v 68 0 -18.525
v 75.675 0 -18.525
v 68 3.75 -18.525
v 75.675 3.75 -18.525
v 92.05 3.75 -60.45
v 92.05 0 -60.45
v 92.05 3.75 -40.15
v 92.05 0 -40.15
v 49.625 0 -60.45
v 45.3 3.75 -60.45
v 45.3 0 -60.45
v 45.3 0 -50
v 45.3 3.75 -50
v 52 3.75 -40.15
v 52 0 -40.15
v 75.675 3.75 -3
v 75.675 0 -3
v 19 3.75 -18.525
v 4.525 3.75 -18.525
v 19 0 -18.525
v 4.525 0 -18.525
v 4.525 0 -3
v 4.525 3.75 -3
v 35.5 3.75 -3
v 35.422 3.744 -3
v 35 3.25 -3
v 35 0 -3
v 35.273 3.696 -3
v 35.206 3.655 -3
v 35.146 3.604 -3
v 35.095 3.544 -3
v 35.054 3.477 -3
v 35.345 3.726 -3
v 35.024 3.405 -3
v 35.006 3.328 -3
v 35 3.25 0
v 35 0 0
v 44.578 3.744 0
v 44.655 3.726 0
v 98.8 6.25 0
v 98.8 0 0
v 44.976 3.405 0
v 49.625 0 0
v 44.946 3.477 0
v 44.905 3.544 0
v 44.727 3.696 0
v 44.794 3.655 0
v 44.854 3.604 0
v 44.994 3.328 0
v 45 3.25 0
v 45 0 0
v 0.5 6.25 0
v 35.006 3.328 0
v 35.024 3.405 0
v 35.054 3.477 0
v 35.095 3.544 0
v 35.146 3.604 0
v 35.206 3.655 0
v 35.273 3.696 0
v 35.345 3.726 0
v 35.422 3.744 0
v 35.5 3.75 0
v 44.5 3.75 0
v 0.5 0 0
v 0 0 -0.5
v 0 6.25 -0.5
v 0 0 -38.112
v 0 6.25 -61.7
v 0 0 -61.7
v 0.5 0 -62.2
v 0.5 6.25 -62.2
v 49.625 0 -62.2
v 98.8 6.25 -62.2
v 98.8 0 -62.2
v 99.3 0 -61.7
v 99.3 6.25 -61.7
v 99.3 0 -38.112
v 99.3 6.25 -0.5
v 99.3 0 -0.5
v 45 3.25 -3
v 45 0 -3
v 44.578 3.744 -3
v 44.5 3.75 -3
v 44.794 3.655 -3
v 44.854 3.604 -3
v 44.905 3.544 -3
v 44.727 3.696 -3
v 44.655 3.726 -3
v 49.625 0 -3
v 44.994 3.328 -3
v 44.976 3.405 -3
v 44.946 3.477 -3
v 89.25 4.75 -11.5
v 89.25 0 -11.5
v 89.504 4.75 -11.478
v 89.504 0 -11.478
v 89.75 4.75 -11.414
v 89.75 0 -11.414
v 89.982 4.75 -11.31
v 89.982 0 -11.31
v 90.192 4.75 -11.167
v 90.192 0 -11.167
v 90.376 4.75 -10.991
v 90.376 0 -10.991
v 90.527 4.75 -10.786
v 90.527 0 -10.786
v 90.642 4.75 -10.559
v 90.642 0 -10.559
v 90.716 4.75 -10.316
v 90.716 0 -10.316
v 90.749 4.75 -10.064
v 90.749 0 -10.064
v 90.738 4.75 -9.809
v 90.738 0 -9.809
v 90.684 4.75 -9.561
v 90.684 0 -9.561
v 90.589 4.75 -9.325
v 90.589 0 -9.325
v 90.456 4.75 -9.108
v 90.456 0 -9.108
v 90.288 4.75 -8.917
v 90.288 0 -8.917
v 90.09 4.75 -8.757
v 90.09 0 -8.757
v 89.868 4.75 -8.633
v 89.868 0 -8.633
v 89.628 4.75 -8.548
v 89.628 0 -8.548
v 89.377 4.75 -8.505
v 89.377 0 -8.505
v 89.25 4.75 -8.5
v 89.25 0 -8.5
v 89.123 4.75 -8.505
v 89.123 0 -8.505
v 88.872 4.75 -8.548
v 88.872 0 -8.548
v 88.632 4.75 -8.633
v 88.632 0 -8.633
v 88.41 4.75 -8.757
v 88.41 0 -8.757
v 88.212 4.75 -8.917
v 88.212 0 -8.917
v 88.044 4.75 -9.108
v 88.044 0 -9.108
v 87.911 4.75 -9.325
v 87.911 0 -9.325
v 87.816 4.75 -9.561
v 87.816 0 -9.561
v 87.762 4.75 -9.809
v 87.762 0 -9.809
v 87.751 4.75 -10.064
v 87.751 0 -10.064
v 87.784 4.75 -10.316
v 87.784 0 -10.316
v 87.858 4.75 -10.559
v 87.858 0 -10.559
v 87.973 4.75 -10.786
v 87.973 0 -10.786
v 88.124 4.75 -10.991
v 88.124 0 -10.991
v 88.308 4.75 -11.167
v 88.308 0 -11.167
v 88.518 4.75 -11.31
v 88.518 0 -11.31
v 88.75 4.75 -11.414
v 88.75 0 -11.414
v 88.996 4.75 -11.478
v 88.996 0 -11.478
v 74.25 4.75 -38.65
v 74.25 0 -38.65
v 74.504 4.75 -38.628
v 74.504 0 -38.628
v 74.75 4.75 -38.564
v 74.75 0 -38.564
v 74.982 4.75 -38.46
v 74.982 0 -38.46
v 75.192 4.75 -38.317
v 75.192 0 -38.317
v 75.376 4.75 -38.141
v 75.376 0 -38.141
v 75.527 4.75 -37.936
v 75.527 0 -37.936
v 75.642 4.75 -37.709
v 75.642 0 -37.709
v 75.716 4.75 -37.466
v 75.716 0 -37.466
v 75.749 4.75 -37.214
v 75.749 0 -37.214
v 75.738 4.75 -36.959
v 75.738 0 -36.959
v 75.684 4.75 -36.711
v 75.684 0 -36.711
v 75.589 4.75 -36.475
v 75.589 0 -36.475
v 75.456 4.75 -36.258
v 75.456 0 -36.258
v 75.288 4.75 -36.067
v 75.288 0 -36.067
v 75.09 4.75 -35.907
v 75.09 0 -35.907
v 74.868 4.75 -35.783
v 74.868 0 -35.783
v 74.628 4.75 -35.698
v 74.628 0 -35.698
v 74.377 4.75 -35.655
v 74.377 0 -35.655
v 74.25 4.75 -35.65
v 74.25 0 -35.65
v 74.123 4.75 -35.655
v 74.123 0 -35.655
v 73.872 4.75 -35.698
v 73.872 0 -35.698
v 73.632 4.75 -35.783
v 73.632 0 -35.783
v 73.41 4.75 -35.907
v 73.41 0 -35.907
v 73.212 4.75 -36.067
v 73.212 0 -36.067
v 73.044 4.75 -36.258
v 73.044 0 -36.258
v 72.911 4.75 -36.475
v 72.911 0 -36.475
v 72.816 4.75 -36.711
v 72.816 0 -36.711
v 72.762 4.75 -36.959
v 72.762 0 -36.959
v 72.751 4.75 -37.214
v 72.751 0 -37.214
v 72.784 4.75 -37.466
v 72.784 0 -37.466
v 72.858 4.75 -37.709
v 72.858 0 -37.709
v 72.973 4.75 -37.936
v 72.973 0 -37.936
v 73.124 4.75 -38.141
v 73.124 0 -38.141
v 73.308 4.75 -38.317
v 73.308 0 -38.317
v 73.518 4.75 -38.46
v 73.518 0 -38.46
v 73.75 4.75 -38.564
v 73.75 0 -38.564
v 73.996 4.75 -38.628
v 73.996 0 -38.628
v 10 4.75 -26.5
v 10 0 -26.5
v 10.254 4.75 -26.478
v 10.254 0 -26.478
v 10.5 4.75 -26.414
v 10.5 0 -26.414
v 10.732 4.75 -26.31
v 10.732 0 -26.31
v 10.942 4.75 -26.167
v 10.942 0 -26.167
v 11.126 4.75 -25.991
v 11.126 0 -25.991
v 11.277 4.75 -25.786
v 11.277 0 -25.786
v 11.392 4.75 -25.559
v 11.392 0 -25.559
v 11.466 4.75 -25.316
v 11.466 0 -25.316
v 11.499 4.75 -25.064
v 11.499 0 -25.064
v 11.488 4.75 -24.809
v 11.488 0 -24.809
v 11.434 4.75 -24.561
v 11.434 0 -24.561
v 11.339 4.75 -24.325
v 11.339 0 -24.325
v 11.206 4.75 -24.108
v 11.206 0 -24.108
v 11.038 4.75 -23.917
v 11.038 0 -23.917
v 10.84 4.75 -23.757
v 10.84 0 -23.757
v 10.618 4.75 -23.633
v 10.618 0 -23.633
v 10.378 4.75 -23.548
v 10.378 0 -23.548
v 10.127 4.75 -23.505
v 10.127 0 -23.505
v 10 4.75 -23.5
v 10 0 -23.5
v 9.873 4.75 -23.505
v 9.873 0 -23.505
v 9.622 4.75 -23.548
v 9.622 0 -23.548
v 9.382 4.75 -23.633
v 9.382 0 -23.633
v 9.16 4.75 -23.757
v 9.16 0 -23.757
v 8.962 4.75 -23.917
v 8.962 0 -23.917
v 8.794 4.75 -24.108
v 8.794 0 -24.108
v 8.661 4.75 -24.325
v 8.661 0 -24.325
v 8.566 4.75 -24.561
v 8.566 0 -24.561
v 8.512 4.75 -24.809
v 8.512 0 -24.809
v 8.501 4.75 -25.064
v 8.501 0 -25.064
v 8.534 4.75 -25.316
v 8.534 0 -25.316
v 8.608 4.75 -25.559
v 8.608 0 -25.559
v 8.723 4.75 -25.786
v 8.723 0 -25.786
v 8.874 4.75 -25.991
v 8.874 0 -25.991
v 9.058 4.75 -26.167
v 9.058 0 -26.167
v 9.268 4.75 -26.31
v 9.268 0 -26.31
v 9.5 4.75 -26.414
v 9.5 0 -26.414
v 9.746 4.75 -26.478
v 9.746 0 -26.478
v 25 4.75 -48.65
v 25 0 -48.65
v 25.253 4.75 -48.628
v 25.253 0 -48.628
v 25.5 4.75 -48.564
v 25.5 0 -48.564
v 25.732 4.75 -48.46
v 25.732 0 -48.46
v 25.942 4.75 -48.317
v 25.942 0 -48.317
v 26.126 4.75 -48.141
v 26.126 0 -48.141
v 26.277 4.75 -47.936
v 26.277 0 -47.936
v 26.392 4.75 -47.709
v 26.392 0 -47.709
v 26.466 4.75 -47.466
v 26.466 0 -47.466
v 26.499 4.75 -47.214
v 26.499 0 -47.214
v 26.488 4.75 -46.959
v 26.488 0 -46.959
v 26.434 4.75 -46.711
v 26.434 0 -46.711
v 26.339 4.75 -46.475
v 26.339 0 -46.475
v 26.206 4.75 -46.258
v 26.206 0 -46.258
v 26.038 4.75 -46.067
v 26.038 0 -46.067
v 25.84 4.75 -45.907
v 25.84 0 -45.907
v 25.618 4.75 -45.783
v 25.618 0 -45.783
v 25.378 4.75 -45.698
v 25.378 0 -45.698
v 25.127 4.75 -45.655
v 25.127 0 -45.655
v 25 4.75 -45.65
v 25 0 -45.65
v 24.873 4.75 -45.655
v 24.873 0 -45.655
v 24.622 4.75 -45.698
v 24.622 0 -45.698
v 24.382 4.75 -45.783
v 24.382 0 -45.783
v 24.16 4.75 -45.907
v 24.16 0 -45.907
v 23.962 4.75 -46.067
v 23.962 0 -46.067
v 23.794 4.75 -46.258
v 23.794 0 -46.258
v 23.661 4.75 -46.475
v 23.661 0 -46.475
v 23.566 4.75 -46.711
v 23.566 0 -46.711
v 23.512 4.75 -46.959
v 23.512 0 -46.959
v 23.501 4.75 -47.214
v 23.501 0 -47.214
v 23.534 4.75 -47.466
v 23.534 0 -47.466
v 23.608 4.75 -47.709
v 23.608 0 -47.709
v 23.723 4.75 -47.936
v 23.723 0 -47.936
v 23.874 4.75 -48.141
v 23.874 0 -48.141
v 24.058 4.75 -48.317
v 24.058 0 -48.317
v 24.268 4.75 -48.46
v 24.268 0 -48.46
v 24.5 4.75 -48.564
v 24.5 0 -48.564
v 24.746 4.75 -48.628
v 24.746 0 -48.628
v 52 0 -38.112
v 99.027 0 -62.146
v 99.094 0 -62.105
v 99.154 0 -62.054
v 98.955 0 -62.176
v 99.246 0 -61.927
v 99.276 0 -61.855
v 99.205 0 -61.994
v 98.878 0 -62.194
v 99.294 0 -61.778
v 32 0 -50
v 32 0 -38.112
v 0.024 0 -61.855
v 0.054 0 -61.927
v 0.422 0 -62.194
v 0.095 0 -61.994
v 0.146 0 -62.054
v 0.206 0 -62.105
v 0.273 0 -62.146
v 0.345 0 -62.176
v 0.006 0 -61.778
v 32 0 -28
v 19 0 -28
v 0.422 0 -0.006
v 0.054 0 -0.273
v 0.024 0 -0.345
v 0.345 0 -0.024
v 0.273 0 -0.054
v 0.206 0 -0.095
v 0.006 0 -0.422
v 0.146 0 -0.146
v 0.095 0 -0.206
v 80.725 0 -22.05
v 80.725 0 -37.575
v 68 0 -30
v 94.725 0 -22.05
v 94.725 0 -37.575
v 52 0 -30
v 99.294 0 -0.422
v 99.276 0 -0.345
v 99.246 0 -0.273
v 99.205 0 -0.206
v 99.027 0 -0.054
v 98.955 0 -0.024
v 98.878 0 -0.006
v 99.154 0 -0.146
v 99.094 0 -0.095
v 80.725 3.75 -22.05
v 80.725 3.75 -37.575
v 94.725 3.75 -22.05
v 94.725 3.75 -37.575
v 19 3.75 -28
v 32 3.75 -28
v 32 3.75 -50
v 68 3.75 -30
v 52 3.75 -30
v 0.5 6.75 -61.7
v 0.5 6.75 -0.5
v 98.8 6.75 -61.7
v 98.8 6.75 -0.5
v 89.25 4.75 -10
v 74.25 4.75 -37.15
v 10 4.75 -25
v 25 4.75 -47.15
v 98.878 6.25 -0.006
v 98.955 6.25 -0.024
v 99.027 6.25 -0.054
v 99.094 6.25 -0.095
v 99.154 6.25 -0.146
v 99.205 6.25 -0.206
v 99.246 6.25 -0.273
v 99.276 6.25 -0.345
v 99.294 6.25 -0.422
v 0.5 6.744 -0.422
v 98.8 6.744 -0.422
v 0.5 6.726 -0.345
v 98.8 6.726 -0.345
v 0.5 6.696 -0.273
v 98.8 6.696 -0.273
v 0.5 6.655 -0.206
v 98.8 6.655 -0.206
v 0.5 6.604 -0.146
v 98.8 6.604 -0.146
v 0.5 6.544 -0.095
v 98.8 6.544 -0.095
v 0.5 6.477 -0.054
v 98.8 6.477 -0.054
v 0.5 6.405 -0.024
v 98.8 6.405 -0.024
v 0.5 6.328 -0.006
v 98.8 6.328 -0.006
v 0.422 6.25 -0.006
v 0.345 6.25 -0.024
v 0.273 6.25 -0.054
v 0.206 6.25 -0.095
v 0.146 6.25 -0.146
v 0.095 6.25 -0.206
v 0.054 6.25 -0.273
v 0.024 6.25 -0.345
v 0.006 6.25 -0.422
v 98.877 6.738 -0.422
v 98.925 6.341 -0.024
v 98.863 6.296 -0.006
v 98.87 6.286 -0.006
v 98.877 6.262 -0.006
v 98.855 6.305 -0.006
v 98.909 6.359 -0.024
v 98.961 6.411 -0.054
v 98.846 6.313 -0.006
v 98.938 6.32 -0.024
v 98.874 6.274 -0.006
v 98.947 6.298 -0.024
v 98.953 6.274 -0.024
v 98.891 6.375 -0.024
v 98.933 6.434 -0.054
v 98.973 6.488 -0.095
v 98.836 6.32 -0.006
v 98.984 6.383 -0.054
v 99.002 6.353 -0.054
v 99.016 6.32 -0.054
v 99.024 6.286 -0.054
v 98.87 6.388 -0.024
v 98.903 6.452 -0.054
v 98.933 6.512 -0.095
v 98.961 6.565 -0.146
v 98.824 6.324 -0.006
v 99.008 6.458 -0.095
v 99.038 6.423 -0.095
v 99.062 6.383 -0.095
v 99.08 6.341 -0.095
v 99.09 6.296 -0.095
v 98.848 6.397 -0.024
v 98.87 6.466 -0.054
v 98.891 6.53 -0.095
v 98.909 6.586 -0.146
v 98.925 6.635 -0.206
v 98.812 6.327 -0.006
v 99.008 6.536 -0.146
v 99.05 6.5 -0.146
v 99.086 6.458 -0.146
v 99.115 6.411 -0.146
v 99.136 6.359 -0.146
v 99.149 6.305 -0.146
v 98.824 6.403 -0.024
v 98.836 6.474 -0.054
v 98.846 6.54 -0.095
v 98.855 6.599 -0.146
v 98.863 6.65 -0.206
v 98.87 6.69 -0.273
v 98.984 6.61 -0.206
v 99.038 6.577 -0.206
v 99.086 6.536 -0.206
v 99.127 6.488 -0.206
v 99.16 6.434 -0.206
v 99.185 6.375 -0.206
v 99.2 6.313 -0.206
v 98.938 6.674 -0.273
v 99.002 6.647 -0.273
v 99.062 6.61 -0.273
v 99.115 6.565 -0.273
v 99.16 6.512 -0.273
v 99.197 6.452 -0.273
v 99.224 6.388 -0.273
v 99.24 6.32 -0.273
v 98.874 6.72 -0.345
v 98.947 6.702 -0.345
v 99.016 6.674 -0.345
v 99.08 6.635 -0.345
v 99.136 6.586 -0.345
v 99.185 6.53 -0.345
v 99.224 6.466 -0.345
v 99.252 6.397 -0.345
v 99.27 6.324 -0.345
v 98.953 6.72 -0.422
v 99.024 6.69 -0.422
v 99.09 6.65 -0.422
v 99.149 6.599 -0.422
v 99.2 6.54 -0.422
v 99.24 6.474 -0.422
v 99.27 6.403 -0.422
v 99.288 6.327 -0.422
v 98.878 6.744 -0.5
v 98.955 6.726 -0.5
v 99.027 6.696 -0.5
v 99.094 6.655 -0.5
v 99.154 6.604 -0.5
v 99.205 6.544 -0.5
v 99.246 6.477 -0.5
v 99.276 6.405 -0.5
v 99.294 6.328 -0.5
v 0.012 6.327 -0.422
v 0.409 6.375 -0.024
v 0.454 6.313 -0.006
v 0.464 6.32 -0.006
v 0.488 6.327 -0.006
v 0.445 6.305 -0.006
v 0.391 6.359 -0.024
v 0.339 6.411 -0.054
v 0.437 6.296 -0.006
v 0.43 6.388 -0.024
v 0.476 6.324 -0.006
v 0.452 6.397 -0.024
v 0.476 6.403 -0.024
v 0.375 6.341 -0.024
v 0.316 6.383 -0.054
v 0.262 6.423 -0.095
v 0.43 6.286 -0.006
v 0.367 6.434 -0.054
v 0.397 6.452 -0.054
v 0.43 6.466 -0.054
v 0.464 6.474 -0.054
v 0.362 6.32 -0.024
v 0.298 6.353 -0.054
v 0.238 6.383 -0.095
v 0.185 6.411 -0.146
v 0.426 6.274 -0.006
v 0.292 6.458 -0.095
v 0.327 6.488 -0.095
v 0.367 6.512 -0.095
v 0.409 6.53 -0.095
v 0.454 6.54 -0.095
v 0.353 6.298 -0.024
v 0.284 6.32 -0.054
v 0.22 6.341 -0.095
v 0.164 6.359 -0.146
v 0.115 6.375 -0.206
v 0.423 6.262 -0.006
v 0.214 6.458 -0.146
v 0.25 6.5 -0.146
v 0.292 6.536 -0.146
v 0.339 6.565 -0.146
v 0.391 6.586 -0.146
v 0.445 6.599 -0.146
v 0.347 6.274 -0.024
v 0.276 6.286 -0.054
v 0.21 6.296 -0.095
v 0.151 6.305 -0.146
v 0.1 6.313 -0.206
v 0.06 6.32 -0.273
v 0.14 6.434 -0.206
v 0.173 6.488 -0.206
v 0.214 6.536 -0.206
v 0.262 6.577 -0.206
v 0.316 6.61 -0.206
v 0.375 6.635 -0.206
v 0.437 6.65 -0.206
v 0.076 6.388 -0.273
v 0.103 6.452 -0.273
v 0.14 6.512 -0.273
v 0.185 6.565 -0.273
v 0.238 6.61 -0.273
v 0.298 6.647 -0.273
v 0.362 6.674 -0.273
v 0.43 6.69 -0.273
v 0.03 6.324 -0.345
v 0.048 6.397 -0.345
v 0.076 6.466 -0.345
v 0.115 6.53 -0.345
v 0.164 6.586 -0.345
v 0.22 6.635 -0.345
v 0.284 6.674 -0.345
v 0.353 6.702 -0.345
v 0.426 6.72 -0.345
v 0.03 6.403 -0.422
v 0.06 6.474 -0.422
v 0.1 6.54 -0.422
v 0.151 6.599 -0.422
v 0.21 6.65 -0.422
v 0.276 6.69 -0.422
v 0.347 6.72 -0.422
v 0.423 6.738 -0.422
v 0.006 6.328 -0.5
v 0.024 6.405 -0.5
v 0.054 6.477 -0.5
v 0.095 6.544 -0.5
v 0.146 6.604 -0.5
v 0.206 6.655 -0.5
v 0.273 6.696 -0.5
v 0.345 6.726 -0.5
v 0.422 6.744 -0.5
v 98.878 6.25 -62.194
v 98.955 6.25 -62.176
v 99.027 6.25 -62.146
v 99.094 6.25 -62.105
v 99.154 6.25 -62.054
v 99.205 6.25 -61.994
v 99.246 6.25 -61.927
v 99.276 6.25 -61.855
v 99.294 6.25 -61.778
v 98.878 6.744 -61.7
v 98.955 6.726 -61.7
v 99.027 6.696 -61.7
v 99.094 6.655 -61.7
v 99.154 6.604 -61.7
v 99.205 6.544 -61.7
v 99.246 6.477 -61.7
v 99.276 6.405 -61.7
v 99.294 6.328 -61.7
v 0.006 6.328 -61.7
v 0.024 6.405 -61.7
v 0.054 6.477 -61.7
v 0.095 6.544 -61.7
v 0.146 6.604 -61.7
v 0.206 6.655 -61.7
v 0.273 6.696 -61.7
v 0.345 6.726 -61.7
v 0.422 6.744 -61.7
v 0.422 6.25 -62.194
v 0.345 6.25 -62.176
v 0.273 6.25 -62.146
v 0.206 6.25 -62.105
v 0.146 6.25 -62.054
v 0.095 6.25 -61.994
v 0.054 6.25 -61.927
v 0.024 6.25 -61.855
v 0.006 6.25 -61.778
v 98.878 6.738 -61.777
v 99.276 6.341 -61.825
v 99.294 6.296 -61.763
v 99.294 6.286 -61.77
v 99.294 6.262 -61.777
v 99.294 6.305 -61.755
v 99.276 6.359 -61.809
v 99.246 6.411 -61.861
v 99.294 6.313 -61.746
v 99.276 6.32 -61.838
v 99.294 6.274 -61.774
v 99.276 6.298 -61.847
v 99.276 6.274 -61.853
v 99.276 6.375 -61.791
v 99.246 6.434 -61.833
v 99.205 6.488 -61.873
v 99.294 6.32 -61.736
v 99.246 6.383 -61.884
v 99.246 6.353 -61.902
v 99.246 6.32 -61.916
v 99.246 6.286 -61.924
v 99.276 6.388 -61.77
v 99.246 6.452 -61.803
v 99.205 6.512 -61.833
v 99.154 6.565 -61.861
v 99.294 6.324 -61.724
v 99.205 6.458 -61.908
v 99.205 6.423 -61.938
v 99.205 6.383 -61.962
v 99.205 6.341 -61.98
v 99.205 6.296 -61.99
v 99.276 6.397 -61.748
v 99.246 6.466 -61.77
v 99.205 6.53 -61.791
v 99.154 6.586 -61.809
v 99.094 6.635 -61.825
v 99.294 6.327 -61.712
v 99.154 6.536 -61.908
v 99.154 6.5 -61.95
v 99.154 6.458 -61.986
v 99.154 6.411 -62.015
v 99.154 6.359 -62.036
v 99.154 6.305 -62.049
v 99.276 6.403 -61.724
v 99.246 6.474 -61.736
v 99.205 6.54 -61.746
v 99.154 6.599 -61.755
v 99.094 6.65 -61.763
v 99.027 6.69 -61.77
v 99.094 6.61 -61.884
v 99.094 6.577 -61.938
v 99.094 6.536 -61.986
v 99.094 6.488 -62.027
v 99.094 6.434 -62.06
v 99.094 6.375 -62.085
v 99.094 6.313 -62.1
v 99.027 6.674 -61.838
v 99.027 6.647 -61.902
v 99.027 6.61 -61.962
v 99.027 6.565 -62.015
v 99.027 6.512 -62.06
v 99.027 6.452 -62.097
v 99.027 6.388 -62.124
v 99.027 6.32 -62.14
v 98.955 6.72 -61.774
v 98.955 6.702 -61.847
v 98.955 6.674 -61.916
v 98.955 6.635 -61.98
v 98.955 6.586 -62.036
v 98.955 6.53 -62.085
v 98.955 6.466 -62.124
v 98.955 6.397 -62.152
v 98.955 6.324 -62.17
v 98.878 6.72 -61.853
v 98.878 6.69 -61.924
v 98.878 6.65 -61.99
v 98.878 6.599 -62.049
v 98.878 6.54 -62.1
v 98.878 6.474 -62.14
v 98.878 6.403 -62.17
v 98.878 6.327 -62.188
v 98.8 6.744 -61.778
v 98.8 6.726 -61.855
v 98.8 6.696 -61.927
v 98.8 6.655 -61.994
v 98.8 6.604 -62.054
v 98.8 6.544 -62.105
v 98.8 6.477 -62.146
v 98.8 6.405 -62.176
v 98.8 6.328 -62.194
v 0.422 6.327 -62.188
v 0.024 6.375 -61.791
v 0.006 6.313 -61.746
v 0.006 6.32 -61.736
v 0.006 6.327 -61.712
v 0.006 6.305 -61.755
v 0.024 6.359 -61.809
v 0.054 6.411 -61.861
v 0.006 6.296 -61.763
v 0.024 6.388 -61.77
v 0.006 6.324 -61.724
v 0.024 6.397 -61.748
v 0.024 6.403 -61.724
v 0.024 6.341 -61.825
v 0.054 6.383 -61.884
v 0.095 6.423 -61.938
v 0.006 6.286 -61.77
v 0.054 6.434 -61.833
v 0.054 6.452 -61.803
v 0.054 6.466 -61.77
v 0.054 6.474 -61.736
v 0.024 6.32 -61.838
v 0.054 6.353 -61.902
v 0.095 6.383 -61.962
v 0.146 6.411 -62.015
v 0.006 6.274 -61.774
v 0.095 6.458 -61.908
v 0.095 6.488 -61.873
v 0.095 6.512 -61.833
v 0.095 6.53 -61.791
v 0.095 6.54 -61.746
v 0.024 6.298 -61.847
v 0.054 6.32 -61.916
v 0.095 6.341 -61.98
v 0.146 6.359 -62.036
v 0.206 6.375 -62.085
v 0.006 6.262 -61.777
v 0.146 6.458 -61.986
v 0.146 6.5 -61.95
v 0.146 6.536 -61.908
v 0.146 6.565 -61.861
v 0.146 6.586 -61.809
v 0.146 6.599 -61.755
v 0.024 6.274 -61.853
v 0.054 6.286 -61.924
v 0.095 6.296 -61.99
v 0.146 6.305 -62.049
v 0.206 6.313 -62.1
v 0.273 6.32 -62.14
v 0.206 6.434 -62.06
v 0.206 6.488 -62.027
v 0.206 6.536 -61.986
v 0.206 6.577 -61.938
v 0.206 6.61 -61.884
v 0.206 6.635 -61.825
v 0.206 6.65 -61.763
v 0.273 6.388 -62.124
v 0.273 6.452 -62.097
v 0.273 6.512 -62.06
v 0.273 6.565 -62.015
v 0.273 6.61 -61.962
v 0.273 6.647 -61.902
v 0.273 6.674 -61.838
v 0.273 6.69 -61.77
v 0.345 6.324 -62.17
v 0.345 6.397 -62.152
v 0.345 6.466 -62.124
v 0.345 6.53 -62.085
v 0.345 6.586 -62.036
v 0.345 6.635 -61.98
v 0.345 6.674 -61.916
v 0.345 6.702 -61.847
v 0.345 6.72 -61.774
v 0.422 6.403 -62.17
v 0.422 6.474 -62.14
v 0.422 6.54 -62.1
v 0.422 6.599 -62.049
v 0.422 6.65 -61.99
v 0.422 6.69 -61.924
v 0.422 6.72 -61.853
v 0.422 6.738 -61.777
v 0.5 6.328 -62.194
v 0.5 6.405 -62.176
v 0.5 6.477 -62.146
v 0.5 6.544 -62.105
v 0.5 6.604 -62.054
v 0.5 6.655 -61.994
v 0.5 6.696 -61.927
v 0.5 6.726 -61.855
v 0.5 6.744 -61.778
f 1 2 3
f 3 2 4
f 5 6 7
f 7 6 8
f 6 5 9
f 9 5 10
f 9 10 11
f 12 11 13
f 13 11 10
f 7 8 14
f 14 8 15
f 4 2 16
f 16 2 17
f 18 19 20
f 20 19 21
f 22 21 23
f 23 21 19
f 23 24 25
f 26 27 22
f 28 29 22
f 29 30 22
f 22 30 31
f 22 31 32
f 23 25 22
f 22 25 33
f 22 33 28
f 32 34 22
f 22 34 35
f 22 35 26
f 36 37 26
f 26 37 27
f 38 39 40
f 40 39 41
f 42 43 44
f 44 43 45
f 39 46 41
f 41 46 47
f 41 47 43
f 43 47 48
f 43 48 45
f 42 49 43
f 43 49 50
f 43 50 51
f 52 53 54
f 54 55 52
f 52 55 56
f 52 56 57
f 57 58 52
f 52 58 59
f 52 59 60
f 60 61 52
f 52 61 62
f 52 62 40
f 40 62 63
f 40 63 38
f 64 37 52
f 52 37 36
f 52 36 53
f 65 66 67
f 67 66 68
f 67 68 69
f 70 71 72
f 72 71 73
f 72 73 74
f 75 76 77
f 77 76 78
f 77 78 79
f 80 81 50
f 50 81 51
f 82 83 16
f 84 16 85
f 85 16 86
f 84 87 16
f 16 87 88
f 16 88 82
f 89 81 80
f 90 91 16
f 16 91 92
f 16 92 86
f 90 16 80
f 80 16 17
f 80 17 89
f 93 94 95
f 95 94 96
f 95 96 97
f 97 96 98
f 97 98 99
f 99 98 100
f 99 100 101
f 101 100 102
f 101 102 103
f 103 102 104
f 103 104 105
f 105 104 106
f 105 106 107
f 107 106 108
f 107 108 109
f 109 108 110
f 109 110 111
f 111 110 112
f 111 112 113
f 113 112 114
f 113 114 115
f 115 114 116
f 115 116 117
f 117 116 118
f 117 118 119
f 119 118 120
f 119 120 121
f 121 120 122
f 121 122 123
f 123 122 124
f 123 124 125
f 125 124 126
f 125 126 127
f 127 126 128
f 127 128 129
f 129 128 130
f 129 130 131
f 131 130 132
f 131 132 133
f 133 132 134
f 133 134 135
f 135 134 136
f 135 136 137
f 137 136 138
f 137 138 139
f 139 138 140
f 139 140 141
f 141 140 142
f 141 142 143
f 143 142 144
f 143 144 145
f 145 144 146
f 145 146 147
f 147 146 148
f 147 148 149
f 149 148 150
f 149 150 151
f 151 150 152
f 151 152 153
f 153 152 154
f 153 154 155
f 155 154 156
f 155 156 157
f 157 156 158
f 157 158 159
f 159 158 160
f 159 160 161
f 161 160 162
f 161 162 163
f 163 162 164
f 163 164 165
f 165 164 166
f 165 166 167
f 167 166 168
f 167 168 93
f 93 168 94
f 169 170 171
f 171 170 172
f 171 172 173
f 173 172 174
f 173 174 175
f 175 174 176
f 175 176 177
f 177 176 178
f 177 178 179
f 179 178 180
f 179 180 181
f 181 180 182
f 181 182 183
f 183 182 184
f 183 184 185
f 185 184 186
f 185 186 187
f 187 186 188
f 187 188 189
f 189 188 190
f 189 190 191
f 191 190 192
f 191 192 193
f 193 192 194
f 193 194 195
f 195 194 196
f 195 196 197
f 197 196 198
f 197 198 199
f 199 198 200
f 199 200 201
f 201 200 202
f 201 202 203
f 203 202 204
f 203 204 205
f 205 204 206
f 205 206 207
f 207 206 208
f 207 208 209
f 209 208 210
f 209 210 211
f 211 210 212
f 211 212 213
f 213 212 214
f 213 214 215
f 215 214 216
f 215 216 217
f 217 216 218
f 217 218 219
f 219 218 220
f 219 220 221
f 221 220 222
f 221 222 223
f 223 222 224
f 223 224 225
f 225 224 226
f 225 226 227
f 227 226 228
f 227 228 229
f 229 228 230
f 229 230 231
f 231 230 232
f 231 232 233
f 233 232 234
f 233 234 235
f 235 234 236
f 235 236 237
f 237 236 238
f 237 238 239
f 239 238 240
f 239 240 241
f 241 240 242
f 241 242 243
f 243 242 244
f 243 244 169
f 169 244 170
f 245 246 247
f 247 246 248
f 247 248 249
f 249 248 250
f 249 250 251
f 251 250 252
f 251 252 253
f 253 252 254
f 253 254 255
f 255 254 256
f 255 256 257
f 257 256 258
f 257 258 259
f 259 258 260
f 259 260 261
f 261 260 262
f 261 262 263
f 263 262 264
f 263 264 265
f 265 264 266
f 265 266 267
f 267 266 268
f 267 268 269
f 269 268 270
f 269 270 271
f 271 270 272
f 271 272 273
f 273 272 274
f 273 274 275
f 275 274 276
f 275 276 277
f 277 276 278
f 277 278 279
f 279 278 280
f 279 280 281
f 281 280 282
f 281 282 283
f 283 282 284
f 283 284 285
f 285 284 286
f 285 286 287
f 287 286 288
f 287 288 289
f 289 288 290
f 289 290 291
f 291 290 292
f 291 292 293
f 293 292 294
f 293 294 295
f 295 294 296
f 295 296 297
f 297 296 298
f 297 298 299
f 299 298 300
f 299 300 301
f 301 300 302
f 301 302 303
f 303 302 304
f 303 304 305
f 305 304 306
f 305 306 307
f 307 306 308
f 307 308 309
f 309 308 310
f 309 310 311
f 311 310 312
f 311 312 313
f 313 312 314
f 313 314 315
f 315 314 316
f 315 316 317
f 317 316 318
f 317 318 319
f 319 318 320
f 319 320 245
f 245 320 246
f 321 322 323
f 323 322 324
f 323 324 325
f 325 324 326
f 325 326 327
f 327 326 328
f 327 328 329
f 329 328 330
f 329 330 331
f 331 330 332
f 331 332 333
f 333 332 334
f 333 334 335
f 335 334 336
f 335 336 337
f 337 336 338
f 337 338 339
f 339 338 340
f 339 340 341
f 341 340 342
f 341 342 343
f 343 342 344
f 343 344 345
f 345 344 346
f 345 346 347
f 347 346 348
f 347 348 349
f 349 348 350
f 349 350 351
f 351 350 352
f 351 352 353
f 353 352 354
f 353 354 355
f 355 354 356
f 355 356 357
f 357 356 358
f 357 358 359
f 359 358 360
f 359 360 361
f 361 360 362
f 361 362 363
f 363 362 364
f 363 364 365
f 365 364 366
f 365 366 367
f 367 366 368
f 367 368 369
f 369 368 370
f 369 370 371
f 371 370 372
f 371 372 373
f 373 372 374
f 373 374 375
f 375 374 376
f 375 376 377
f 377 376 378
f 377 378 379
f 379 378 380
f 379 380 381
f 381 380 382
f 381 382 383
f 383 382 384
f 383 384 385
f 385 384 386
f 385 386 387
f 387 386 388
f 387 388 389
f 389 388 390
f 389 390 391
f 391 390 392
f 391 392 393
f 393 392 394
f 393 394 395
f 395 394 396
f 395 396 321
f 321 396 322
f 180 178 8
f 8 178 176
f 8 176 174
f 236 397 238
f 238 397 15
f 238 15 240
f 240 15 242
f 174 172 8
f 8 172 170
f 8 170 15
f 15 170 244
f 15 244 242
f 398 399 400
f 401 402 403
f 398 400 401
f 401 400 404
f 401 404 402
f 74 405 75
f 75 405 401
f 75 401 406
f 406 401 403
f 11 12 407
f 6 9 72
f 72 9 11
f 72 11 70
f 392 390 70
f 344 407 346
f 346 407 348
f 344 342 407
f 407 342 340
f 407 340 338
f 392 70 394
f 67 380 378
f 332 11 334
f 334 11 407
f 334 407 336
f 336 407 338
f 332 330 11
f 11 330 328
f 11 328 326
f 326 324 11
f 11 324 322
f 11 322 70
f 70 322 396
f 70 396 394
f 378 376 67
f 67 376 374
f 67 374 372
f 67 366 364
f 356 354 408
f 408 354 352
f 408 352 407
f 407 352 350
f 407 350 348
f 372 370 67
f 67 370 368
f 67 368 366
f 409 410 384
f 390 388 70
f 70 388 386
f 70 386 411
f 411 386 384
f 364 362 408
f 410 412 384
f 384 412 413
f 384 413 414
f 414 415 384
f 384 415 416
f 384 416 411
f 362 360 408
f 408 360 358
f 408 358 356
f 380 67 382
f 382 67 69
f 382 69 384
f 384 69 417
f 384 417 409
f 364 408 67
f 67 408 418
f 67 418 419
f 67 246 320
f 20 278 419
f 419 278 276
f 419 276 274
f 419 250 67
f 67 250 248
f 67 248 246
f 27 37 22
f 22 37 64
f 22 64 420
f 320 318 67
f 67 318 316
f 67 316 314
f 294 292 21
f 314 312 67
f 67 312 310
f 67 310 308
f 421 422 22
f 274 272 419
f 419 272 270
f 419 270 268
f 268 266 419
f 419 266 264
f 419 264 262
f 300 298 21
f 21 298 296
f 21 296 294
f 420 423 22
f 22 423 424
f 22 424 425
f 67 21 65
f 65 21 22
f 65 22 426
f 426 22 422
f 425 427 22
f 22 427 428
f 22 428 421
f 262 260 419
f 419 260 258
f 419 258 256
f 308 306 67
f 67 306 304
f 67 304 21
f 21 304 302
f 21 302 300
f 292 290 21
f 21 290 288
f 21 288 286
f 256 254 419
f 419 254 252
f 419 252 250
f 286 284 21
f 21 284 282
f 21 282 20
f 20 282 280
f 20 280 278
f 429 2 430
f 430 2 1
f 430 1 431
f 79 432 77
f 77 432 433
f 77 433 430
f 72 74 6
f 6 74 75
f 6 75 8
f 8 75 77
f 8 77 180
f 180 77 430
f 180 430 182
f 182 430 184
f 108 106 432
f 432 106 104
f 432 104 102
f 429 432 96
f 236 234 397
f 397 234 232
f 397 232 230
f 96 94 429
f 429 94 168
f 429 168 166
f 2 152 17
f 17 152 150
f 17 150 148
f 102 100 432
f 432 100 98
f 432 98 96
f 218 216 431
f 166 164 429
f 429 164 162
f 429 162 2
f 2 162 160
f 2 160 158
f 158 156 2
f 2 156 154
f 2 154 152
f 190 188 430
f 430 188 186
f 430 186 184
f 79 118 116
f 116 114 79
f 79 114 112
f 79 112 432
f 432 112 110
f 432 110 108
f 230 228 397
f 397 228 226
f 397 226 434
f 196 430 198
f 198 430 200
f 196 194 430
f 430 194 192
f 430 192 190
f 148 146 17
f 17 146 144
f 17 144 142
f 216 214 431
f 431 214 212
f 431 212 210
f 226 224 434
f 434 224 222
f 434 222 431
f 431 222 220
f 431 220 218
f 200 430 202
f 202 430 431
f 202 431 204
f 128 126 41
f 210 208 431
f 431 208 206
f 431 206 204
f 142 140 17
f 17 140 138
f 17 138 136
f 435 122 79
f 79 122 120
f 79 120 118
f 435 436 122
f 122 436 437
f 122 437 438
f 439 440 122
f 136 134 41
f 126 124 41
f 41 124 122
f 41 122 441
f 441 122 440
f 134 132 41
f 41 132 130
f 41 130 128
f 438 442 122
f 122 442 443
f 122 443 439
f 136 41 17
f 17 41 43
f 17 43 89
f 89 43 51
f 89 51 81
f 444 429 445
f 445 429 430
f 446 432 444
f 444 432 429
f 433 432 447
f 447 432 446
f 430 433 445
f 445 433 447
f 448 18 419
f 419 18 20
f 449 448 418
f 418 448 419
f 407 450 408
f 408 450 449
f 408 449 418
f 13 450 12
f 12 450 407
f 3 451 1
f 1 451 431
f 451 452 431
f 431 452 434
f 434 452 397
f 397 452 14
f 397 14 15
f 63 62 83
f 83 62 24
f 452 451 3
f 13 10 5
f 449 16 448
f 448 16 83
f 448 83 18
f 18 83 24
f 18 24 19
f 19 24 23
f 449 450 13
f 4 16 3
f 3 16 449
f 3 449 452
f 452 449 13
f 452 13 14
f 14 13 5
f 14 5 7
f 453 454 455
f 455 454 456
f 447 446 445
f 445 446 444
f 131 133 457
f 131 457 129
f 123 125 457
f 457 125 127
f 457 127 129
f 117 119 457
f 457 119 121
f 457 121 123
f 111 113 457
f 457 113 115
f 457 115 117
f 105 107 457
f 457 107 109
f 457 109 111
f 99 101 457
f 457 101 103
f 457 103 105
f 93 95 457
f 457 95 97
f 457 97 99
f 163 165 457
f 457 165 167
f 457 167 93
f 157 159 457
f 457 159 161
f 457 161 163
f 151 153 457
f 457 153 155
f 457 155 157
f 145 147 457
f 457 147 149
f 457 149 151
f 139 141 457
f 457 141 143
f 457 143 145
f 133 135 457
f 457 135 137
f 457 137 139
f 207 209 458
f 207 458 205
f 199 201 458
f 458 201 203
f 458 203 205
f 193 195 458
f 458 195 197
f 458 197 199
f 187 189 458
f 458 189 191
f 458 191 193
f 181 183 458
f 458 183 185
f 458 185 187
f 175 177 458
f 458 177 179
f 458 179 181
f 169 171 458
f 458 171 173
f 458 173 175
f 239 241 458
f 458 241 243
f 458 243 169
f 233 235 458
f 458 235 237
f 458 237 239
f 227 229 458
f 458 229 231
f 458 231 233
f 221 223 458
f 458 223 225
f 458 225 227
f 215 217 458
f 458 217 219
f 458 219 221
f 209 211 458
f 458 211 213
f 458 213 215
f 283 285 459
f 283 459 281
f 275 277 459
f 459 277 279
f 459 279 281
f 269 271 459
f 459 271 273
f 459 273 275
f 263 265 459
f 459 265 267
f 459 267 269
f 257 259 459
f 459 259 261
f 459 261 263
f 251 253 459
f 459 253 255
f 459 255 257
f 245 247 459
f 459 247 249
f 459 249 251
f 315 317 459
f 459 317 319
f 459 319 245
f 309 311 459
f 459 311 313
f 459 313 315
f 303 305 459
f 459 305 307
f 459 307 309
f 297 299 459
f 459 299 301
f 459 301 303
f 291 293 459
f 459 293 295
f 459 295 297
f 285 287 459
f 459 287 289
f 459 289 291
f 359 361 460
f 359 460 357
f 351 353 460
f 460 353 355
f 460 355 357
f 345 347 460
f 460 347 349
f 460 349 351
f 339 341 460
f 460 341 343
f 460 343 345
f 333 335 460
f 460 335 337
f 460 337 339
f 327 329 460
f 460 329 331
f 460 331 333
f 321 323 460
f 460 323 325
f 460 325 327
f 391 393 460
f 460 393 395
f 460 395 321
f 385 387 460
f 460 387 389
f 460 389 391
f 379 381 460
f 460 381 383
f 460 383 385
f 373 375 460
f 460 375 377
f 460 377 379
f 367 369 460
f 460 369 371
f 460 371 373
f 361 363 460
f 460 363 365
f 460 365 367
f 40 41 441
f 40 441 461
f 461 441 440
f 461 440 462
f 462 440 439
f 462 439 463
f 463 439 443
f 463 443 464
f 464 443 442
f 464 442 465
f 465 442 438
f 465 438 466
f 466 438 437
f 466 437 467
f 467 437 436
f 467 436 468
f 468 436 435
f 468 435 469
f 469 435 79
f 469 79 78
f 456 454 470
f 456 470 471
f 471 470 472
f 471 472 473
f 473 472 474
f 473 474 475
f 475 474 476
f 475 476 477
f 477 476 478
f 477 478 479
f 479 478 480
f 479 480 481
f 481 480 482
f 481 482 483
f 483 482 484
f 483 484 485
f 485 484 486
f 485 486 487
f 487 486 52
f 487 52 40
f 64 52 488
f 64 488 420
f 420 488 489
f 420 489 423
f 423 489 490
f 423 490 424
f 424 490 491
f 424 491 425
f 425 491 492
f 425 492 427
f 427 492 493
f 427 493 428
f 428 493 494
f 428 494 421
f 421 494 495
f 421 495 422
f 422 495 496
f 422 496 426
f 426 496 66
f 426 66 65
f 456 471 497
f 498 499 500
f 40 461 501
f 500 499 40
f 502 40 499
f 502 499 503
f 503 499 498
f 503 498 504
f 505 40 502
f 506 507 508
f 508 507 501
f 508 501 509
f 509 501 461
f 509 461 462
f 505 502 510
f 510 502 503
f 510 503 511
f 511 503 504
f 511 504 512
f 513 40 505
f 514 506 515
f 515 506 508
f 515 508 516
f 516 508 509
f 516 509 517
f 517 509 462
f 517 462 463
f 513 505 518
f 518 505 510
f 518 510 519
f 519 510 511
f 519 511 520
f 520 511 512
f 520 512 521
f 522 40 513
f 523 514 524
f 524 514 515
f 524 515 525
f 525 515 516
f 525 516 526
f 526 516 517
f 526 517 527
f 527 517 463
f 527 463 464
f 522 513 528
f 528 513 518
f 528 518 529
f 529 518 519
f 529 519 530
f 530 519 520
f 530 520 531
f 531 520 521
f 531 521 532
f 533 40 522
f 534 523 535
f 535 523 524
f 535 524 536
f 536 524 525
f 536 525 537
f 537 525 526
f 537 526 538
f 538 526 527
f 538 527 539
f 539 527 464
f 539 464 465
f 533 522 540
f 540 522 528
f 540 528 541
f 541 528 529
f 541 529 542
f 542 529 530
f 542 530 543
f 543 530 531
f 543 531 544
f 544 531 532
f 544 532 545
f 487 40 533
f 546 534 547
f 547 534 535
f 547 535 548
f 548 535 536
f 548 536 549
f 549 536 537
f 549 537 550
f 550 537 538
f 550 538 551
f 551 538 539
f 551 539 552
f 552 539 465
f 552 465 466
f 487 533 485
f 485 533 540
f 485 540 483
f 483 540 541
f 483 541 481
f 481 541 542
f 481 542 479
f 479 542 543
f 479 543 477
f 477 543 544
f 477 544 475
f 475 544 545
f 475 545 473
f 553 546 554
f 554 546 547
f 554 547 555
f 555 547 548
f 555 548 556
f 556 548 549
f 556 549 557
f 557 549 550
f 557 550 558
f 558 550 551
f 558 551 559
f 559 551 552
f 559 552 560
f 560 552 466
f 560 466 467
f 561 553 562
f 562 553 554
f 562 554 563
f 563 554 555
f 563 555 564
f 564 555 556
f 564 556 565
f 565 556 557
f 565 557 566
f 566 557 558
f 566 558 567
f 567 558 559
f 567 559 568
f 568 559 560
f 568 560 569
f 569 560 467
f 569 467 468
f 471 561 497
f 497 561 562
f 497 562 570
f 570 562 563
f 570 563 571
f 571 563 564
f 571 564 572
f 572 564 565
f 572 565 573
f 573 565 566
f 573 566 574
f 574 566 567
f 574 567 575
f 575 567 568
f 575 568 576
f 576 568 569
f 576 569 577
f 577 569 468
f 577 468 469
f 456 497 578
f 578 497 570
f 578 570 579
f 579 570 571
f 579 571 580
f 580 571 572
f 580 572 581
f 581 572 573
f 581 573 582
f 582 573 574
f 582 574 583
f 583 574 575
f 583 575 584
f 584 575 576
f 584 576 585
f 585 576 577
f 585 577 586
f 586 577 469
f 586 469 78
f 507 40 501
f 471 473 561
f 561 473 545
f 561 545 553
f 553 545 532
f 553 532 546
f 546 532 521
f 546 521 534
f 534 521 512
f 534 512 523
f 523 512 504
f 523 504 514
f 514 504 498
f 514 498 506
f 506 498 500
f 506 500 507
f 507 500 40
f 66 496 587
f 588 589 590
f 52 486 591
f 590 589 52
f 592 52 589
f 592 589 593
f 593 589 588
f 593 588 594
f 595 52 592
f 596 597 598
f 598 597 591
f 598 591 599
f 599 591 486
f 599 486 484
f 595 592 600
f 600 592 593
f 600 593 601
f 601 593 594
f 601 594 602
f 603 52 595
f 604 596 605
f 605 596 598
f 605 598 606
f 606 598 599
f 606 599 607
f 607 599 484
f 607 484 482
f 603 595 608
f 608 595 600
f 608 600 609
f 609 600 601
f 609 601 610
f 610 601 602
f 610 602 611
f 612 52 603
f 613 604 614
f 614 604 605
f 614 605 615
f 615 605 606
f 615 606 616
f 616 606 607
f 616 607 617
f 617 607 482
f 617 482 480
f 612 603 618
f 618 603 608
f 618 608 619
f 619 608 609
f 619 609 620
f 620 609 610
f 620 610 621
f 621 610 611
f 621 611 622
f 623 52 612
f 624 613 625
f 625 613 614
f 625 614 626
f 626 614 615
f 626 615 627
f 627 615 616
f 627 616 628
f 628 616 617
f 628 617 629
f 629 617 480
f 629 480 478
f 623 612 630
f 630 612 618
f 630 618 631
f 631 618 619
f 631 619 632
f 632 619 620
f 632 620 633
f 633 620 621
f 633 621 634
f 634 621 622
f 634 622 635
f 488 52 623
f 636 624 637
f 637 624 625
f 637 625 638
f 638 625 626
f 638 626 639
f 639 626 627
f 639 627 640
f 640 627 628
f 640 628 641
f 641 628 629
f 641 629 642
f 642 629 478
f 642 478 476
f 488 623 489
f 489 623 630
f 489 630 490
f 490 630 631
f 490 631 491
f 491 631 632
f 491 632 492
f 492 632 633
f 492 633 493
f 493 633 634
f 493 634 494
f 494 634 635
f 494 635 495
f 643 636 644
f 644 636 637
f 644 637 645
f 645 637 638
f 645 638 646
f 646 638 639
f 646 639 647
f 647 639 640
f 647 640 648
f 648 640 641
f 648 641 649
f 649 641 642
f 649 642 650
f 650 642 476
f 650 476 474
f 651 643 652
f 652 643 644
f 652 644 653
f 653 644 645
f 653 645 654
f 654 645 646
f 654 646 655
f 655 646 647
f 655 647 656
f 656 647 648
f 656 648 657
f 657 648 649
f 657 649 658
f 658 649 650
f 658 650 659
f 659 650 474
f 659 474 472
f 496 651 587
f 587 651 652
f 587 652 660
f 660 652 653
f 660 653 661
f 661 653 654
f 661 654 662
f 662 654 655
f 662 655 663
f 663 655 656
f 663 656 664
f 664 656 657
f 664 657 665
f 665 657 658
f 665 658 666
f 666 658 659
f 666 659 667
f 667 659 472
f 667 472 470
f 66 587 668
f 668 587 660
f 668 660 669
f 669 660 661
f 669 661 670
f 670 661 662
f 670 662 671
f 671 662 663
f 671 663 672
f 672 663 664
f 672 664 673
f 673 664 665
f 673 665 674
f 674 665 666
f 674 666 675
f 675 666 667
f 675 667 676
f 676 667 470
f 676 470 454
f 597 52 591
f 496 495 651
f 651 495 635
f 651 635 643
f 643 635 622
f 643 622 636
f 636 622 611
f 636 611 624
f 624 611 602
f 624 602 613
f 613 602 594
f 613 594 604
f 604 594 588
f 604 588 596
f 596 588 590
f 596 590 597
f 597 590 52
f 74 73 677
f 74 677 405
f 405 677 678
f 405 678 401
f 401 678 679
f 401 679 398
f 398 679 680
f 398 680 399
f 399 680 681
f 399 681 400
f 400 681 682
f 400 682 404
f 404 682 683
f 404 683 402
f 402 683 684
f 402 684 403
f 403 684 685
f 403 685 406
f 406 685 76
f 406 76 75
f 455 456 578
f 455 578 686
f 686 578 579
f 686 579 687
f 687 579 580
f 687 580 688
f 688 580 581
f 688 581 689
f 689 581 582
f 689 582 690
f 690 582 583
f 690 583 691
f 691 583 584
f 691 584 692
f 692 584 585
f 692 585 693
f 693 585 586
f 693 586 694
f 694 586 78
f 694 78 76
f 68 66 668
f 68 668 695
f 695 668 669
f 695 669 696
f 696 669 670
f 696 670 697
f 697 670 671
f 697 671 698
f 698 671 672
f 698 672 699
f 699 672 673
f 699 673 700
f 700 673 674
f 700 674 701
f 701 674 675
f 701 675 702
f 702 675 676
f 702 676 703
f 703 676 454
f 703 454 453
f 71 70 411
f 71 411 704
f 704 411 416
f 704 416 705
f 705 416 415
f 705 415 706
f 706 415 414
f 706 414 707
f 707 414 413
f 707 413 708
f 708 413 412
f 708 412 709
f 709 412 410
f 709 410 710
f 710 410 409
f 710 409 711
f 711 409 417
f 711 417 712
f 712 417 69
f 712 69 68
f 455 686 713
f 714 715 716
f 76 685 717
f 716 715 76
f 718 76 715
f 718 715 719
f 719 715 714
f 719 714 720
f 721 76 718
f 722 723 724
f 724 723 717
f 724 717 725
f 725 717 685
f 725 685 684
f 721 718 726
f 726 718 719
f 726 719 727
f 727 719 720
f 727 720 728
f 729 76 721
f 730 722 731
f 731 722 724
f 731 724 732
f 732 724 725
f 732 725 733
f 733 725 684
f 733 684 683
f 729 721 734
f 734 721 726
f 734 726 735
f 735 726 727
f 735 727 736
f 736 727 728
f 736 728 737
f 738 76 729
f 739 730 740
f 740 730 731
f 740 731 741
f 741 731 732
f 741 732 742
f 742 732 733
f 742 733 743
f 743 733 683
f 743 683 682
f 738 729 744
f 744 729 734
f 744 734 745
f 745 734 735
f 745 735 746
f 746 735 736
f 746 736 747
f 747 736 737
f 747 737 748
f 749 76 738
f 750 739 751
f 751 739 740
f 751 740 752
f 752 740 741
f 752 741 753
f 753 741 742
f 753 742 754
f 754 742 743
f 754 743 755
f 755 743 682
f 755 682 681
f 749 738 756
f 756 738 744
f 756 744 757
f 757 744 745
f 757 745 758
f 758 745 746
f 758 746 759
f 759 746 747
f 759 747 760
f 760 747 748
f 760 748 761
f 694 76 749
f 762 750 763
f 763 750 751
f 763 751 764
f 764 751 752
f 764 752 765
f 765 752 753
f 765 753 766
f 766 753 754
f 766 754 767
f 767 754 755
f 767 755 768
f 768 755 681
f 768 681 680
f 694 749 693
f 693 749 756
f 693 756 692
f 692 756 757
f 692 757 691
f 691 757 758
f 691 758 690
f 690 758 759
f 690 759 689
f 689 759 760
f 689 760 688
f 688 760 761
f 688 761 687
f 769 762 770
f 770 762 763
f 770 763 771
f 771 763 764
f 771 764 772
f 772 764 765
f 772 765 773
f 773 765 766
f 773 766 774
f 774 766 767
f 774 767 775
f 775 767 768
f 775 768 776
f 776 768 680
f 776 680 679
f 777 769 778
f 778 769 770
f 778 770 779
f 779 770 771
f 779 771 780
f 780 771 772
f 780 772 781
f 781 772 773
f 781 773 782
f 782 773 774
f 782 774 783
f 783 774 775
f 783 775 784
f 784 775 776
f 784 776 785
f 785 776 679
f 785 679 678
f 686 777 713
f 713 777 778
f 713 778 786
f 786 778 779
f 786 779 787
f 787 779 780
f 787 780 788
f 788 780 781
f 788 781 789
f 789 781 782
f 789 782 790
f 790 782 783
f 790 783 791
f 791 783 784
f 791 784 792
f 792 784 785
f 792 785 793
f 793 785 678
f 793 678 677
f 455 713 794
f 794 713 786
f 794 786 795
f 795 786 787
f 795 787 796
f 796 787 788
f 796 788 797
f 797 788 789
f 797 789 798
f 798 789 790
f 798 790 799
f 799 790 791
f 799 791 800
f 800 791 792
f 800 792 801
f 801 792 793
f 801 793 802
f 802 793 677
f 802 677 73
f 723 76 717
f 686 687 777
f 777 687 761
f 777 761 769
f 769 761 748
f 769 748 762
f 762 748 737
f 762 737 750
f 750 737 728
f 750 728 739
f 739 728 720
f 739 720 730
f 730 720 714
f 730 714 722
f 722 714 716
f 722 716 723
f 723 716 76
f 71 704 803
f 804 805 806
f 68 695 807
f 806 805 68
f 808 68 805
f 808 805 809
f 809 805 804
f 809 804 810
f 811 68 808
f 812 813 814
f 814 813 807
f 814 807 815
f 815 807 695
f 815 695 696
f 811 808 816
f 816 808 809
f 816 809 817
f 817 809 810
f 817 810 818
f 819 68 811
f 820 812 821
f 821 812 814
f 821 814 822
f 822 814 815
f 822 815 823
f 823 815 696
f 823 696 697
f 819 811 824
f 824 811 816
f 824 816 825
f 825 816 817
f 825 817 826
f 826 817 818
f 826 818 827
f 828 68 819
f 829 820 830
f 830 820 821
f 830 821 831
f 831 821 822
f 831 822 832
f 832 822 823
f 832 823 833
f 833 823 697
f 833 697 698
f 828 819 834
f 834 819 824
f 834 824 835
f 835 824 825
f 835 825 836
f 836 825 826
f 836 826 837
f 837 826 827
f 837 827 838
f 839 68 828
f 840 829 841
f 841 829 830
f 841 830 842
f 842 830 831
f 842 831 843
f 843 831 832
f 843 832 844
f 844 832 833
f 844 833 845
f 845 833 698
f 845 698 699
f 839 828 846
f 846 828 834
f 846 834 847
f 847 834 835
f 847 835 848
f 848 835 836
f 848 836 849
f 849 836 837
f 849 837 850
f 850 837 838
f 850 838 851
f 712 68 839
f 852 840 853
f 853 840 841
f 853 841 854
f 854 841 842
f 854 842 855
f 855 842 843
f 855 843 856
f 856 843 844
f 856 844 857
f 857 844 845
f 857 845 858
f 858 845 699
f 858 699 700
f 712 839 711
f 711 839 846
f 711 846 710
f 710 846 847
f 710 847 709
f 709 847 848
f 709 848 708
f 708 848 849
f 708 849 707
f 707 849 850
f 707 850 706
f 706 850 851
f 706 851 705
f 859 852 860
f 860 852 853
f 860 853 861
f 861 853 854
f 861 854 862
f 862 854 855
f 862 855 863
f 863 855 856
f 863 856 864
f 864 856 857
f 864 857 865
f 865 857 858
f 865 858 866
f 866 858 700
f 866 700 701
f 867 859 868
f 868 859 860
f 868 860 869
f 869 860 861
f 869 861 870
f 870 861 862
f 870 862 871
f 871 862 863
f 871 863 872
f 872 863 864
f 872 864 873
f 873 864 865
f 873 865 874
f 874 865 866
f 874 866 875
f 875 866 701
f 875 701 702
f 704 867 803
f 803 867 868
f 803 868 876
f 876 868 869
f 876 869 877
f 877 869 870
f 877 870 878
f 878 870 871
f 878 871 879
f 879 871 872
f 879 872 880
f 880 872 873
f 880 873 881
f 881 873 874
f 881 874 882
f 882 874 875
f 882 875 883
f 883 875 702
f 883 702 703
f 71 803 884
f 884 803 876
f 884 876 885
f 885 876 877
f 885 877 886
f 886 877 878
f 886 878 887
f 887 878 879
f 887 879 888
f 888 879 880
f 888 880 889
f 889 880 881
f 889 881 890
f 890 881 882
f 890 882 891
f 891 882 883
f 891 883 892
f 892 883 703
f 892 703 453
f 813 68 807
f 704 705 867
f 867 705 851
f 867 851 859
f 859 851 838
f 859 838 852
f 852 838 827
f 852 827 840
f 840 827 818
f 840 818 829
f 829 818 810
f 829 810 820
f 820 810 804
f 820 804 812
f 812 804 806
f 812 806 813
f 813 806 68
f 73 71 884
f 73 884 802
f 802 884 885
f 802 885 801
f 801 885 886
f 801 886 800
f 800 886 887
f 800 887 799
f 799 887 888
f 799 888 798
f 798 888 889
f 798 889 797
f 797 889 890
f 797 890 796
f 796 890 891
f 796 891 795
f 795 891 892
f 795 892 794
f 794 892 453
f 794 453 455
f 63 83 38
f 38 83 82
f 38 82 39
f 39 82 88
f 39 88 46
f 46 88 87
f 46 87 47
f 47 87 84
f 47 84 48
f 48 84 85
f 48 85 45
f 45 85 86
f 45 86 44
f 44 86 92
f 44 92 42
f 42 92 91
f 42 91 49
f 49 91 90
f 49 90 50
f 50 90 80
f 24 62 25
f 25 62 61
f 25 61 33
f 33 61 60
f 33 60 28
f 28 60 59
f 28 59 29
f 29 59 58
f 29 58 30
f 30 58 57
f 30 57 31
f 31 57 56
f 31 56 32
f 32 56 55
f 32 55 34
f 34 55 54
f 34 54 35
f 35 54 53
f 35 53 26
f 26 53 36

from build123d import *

# Parameters (mm, degrees)
SKETCH1_R           = 1.5
SKETCH1_W           = 14
SKETCH1_H           = 15.525
SKETCH1_W_2         = 46.75
SKETCH1_H_2         = 20.3
BOSS_EXTRUDE1_DEPTH = 3.75
CUT_EXTRUDE1_DEPTH  = 118.232216135
SKETCH3_W           = 99.3
SKETCH3_H           = 62.2
BOSS_EXTRUDE2_DEPTH = 3
SKETCH4_R           = 1.5
CUT_EXTRUDE2_DEPTH  = 4.75
FILLET1_R           = 0.5


with BuildPart() as part:
    # Sketch1 → Boss-Extrude1 (new body)
    with BuildSketch(Plane(origin=(0, 0, 0), x_dir=(1, 0, 0), z_dir=(0, 1, 0))):
        Polygon((0, 62.2), (0, 0), (35, 0), (35, 3), (4.525, 3), (4.525, 18.525), (75.675, 18.525), (75.675, 3), (45, 3), (45, 0), (99.3, 0), (99.3, 62.2), align=None)
        with Locations(Location((10, 25, 0), (0, 0, 270))):
            Circle(SKETCH1_R, mode=Mode.SUBTRACT)
        with Locations(Location((89.25, 10, 0), (0, 0, 270))):
            Circle(SKETCH1_R, mode=Mode.SUBTRACT)
        with Locations((87.725, 29.8125)):
            Rectangle(SKETCH1_W, SKETCH1_H, mode=Mode.SUBTRACT)
        with Locations(Location((25, 47.15, 0), (0, 0, 270))):
            Circle(SKETCH1_R, mode=Mode.SUBTRACT)
        with Locations(Location((74.25, 37.15, 0), (0, 0, 270))):
            Circle(SKETCH1_R, mode=Mode.SUBTRACT)
        with Locations((68.675, 50.3)):
            Rectangle(SKETCH1_W_2, SKETCH1_H_2, mode=Mode.SUBTRACT)
    extrude(amount=BOSS_EXTRUDE1_DEPTH)

    # Sketch2 → Cut-Extrude1 (cut, through all)
    with BuildSketch(Plane.XZ):
        Polygon((19, -18.525), (19, -28), (32, -28), (32, -50), (45.3, -50), (45.3, -40.15), (52, -40.15), (52, -30), (68, -30), (68, -18.525), align=None)
    extrude(amount=-CUT_EXTRUDE1_DEPTH, mode=Mode.SUBTRACT)

    # Sketch3 → Boss-Extrude2 (add)
    with BuildSketch(Plane(origin=(0, 3.75, 0), x_dir=(1, 0, 0), z_dir=(0, 1, 0))):
        with Locations((49.65, 31.1)):
            Rectangle(SKETCH3_W, SKETCH3_H)
    extrude(amount=BOSS_EXTRUDE2_DEPTH)

    # Sketch4 → Cut-Extrude2 (cut)
    with BuildSketch(Plane.XZ):
        with Locations(Location((89.25, -10, 0), (0, 0, 90))):
            Circle(SKETCH4_R)
        with Locations(Location((74.25, -37.15, 0), (0, 0, 90))):
            Circle(SKETCH4_R)
        with Locations(Location((25, -47.15, 0), (0, 0, 90))):
            Circle(SKETCH4_R)
        with Locations(Location((10, -25, 0), (0, 0, 90))):
            Circle(SKETCH4_R)
    extrude(amount=-CUT_EXTRUDE2_DEPTH, mode=Mode.SUBTRACT)

    # Fillet1
    fillet1_edges = [part.edges().sort_by_distance(p)[0] for p in [
        (0, 6.75, -31.1),
        (49.65, 6.75, 0),
        (99.3, 6.75, -31.1),
        (49.65, 6.75, -62.2),
        (0, 3.375, 0),
        (0, 3.375, -62.2),
        (99.3, 3.375, -62.2),
        (99.3, 3.375, 0),
        (35, 3.75, -1.5),
        (45, 3.75, -1.5),
    ]]
    fillet(fillet1_edges, radius=FILLET1_R)


solid = part.part
